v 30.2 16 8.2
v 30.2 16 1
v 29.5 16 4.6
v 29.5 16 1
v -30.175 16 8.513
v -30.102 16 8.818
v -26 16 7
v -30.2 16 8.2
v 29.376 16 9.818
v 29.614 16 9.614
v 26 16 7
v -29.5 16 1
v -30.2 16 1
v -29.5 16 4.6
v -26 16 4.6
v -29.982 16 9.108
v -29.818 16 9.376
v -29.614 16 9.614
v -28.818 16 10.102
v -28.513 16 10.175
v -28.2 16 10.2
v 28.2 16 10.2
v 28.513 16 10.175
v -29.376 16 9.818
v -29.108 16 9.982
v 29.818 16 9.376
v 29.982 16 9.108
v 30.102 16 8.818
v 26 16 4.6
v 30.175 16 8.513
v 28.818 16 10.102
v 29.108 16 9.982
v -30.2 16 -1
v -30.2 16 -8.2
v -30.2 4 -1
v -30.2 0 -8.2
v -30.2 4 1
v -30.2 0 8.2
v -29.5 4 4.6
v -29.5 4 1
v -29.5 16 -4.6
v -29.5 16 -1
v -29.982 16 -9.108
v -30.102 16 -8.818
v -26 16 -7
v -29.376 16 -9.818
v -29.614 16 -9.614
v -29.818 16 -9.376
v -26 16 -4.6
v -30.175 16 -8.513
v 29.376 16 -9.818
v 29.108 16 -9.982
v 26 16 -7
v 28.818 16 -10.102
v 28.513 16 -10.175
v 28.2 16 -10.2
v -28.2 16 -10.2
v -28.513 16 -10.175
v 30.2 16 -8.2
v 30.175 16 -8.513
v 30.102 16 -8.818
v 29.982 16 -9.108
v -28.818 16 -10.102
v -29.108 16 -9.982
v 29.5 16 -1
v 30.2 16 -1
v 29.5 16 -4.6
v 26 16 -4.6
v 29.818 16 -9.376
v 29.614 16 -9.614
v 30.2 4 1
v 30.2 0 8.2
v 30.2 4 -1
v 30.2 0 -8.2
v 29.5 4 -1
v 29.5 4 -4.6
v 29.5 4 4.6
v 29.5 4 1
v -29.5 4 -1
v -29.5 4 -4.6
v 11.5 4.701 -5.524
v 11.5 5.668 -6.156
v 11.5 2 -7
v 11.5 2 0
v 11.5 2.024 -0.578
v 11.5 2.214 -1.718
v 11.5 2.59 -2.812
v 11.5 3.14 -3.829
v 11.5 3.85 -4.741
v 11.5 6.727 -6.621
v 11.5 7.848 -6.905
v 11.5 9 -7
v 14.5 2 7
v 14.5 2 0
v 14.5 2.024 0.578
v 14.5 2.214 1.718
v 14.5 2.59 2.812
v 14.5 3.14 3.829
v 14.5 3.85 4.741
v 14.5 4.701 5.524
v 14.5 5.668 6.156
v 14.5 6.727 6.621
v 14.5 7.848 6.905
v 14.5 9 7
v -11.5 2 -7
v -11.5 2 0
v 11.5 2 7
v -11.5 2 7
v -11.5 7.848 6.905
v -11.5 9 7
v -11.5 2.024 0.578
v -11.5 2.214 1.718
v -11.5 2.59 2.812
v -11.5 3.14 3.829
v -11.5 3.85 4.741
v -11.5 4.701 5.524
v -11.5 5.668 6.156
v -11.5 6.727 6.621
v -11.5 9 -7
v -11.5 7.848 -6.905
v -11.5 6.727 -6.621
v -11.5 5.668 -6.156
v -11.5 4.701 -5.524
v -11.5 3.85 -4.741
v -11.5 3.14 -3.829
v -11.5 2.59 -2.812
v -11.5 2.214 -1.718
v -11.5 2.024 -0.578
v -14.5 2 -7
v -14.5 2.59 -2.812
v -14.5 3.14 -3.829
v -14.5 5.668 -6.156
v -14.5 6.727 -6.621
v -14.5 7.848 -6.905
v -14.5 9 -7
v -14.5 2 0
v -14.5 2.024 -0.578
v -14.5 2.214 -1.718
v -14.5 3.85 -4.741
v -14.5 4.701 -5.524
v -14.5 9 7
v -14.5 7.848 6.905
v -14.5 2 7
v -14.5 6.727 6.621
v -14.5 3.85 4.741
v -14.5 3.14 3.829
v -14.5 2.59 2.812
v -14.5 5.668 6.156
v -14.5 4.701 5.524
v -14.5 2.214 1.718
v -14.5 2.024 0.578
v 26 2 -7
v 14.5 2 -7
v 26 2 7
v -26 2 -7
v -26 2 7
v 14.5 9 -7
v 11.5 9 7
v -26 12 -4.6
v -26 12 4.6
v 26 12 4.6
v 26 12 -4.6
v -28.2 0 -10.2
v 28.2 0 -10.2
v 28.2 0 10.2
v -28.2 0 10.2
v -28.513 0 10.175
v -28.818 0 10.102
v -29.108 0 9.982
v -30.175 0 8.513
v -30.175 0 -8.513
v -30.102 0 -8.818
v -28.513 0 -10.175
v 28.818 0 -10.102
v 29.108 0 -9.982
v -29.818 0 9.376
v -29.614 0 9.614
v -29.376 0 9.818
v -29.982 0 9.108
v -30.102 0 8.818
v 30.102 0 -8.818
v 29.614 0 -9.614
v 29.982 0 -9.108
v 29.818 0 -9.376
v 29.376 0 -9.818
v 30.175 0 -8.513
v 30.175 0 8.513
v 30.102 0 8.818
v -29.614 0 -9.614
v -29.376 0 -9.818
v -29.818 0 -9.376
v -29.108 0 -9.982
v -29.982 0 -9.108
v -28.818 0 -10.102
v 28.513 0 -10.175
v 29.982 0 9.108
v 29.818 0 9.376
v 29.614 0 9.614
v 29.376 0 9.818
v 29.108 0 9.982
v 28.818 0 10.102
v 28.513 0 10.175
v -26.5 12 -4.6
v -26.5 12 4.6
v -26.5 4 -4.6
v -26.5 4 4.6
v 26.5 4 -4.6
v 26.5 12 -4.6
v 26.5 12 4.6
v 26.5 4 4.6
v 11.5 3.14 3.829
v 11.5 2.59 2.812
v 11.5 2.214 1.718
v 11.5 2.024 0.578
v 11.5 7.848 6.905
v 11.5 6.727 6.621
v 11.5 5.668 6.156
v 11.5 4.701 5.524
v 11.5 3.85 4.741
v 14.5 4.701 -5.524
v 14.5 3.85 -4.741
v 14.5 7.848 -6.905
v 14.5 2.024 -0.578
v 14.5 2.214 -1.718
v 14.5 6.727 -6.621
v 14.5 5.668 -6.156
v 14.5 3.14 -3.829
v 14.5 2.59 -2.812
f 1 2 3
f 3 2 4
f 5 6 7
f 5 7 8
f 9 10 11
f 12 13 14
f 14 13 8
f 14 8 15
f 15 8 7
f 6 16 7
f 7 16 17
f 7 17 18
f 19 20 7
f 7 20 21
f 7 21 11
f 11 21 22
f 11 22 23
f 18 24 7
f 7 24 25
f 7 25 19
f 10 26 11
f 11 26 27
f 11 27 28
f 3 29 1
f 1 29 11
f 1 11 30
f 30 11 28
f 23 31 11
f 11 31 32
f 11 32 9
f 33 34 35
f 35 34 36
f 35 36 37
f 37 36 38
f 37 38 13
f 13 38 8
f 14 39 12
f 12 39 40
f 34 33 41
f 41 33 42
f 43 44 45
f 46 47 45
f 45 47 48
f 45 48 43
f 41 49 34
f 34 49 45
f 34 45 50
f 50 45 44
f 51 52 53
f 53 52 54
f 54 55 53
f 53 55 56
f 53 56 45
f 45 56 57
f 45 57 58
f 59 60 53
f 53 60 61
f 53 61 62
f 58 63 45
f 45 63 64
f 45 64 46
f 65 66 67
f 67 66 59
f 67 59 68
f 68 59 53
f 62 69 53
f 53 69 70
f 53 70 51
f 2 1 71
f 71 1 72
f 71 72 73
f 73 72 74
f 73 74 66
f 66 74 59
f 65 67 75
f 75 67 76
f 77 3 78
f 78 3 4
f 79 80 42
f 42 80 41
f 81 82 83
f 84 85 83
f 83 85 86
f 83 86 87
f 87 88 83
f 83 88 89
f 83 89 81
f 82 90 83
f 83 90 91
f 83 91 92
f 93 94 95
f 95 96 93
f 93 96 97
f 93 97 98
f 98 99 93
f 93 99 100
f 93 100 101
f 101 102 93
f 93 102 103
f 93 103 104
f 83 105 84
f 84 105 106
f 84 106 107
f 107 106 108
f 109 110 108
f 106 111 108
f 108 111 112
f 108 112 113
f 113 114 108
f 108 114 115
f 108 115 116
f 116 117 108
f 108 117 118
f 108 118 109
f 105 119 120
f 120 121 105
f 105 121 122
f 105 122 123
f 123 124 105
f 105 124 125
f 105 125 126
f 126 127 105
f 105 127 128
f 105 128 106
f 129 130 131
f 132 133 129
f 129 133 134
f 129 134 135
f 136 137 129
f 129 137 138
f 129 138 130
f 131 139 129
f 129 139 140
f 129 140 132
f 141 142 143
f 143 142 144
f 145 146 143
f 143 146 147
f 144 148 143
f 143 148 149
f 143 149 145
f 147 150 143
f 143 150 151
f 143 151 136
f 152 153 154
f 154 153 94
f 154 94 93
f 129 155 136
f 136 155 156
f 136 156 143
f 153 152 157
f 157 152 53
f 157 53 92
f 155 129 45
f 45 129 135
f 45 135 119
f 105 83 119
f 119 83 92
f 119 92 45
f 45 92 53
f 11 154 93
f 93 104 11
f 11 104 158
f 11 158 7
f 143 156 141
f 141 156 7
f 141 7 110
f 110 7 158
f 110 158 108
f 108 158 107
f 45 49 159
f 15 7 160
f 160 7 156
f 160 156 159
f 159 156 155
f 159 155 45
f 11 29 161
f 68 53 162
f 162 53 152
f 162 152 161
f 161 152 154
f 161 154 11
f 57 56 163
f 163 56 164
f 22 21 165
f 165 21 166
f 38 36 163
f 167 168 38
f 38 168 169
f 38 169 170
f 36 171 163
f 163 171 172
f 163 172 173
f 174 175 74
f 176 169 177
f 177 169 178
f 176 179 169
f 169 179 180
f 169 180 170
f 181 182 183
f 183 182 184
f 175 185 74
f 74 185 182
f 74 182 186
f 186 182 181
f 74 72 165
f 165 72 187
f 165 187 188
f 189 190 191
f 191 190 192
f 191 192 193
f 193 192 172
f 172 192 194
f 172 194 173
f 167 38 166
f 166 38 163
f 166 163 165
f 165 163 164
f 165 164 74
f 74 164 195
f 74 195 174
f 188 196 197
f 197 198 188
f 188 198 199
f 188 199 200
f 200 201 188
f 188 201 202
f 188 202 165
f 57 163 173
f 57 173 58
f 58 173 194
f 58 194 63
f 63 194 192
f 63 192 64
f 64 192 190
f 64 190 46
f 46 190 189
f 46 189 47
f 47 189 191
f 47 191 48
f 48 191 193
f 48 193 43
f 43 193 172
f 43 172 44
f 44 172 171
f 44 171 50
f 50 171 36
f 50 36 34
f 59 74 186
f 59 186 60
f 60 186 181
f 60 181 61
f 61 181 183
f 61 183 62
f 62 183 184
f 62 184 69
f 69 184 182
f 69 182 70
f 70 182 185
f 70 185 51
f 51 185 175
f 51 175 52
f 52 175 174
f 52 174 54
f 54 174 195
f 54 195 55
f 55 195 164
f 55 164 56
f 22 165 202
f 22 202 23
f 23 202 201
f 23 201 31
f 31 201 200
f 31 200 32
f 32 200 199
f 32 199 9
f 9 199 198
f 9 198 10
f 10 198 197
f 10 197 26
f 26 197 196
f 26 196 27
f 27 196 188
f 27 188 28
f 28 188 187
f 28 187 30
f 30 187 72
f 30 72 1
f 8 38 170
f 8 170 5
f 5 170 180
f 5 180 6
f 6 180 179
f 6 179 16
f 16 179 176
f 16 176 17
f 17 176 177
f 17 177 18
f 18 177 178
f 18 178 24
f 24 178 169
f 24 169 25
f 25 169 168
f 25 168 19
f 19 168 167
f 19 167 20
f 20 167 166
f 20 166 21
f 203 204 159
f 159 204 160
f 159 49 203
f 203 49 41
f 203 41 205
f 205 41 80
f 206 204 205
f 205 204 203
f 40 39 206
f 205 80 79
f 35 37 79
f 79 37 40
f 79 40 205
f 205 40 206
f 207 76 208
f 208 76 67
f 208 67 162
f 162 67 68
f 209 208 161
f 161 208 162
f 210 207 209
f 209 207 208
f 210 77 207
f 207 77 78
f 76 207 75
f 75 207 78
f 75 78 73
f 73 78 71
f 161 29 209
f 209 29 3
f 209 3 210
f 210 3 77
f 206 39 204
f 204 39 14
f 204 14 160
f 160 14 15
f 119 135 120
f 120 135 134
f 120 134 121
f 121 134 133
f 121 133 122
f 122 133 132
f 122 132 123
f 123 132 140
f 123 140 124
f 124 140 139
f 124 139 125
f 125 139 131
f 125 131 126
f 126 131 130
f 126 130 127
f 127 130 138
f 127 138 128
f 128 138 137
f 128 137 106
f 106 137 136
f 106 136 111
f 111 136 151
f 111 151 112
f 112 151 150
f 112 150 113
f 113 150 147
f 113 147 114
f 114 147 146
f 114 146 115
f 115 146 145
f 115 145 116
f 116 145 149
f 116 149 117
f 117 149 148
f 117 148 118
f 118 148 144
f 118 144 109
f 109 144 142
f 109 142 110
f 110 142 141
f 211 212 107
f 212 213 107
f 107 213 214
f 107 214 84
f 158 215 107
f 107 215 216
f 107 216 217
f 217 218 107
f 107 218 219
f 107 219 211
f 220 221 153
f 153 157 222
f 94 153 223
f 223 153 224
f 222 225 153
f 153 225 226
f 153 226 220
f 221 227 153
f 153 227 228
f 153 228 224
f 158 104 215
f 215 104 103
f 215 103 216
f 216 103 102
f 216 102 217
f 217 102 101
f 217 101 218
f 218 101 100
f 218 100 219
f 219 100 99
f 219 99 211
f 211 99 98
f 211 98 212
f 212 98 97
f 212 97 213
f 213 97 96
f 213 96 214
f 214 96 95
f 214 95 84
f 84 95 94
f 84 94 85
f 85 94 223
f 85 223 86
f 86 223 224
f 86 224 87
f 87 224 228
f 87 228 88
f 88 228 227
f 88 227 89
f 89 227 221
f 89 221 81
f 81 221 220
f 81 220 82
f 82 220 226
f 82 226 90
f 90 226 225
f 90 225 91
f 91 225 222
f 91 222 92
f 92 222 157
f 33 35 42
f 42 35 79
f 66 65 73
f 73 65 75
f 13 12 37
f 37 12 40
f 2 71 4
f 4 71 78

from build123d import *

# Parameters (mm, degrees)
SKETCH2_W                                  = 60.4
SKETCH2_H                                  = 20.4
BOSS_EXTRUDE1_DEPTH                        = 16
SKETCH3_W                                  = 52
SKETCH3_H                                  = 14
CUT_EXTRUDE1_DEPTH                         = 14
FILLET1_R                                  = 2
SKETCH4_W                                  = 0.5
SKETCH4_H                                  = 4.6
CUT_EXTRUDE2_DEPTH                         = 4
SKETCH5_W                                  = 3
SKETCH5_H                                  = 4.6
CUT_EXTRUDE3_DEPTH                         = 12
MIRROR5_COPY_1_SKETCH_W                    = 0.5
MIRROR5_COPY_1_SKETCH_H                    = 4.6
MIRROR5_COPY_1_DEPTH                       = 4
MIRROR5_COPY_2_SKETCH_W                    = 3
MIRROR5_COPY_2_SKETCH_H                    = 4.6
MIRROR5_COPY_2_DEPTH                       = 12
MIRROR5_COPY_3_SKETCH_W                    = 0.5
MIRROR5_COPY_3_SKETCH_H                    = 4.6
MIRROR5_COPY_3_DEPTH                       = 4
SKETCH8_W                                  = 3
SKETCH8_H                                  = 14
BOSS_EXTRUDE2_DEPTH                        = 7
CUT_EXTRUDE5_REACH                         = 49.183
SKETCH7_R                                  = 7
CUT_EXTRUDE5_DIRECTION_2_REACH             = 49.183
SKETCH9_W                                  = 0.7
SKETCH9_H                                  = 1
CUT_EXTRUDE6_DEPTH                         = 12
MIRROR8_AT_THE_SECOND_PLANE_COPY_1_SKETC_W = 0.7
MIRROR8_AT_THE_SECOND_PLANE_COPY_1_SKETC_H = 1
MIRROR8_AT_THE_SECOND_PLANE_COPY_1_DEPTH   = 12


with BuildPart() as part:
    # Sketch2 → Boss-Extrude1 (new body)
    with BuildSketch(Plane(origin=(0, 0, 0), x_dir=(1, 0, 0), z_dir=(0, 1, 0))):
        Rectangle(SKETCH2_W, SKETCH2_H)
    extrude(amount=BOSS_EXTRUDE1_DEPTH)

    # Sketch3 → Cut-Extrude1 (cut)
    with BuildSketch(Plane(origin=(0, 16, 0), x_dir=(1, 0, 0), z_dir=(0, 1, 0))):
        Rectangle(SKETCH3_W, SKETCH3_H)
    extrude(amount=-CUT_EXTRUDE1_DEPTH, mode=Mode.SUBTRACT)

    # Fillet1
    fillet1_edges = [part.edges().sort_by_distance(p)[0] for p in [
        (30.2, 8, 10.2),
        (-30.2, 8, 10.2),
        (-30.2, 8, -10.2),
        (30.2, 8, -10.2),
    ]]
    fillet(fillet1_edges, radius=FILLET1_R)

    # Sketch4 → Cut-Extrude2 (cut)
    with BuildSketch(Plane(origin=(0, 16, 0), x_dir=(1, 0, 0), z_dir=(0, 1, 0))):
        with Locations((-26.25, 2.3)):
            Rectangle(SKETCH4_W, SKETCH4_H)
    cut_extrude2 = extrude(amount=-CUT_EXTRUDE2_DEPTH, mode=Mode.SUBTRACT)

    # Sketch5 → Cut-Extrude3 (cut)
    with BuildSketch(Plane(origin=(0, 16, 0), x_dir=(1, 0, 0), z_dir=(0, 1, 0))):
        with Locations((-28, 2.3)):
            Rectangle(SKETCH5_W, SKETCH5_H)
    cut_extrude3 = extrude(amount=-CUT_EXTRUDE3_DEPTH, mode=Mode.SUBTRACT)

    # Mirror4: Cut-Extrude2, Cut-Extrude3 across plane
    add(cut_extrude2.mirror(Plane(origin=(0, 0, 0), x_dir=(0, 0, 1), z_dir=(1, 0, 0))), mode=Mode.SUBTRACT)
    add(cut_extrude3.mirror(Plane(origin=(0, 0, 0), x_dir=(0, 0, 1), z_dir=(1, 0, 0))), mode=Mode.SUBTRACT)

    # Mirror5: Cut-Extrude3 across plane
    add(cut_extrude3.mirror(Plane.XY), mode=Mode.SUBTRACT)

    # Mirror5 copy 1 sketch → Mirror5 copy 1 (cut)
    with BuildSketch(Plane(origin=(0, 16, 0), x_dir=(-1, 0, 0), z_dir=(0, 1, 0))):
        with Locations((-26.25, 2.3)):
            Rectangle(MIRROR5_COPY_1_SKETCH_W, MIRROR5_COPY_1_SKETCH_H)
    extrude(amount=-MIRROR5_COPY_1_DEPTH, mode=Mode.SUBTRACT)

    # Mirror5 copy 2 sketch → Mirror5 copy 2 (cut)
    with BuildSketch(Plane(origin=(0, 16, 0), x_dir=(-1, 0, 0), z_dir=(0, 1, 0))):
        with Locations((-28, 2.3)):
            Rectangle(MIRROR5_COPY_2_SKETCH_W, MIRROR5_COPY_2_SKETCH_H)
    extrude(amount=-MIRROR5_COPY_2_DEPTH, mode=Mode.SUBTRACT)

    # Mirror5 copy 3 sketch → Mirror5 copy 3 (cut)
    with BuildSketch(Plane(origin=(0, 16, 0), x_dir=(1, 0, 0), z_dir=(0, 1, 0))):
        with Locations((-26.25, -2.3)):
            Rectangle(MIRROR5_COPY_3_SKETCH_W, MIRROR5_COPY_3_SKETCH_H)
    extrude(amount=-MIRROR5_COPY_3_DEPTH, mode=Mode.SUBTRACT)

    # Sketch8 → Boss-Extrude2 (add)
    with BuildSketch(Plane(origin=(0, 2, 0), x_dir=(1, 0, 0), z_dir=(0, 1, 0))):
        with Locations((-13, 0)):
            Rectangle(SKETCH8_W, SKETCH8_H)
    boss_extrude2 = extrude(amount=BOSS_EXTRUDE2_DEPTH)

    # Sketch7 → Cut-Extrude5 (cut, up to next)
    with BuildSketch(Plane(origin=(-13, 0, 0), x_dir=(0, 0, -1), z_dir=(1, 0, 0)), mode=Mode.PRIVATE) as cut_extrude5_sk1:
        with Locations((0, 9)):
            Circle(SKETCH7_R)
    cut_extrude5_tool1 = extrude(cut_extrude5_sk1.sketch, amount=-CUT_EXTRUDE5_REACH, mode=Mode.PRIVATE) & part.part
    cut_extrude5 = cut_extrude5_tool1.solids().sort_by_distance((-13, 9, 0))[0]
    add(cut_extrude5, mode=Mode.SUBTRACT)

    # Sketch7 → Cut-Extrude5 direction 2 (cut, up to next)
    with BuildSketch(Plane(origin=(-13, 0, 0), x_dir=(0, 0, -1), z_dir=(1, 0, 0)), mode=Mode.PRIVATE) as cut_extrude5_direction_2_sk1:
        with Locations((0, 9)):
            Circle(SKETCH7_R)
    cut_extrude5_direction_2_tool1 = extrude(cut_extrude5_direction_2_sk1.sketch, amount=CUT_EXTRUDE5_DIRECTION_2_REACH, mode=Mode.PRIVATE) & part.part
    cut_extrude5_direction_2 = cut_extrude5_direction_2_tool1.solids().sort_by_distance((-13, 9, 0))[0]
    add(cut_extrude5_direction_2, mode=Mode.SUBTRACT)

    # Mirror7: Boss-Extrude2, Cut-Extrude5, Cut-Extrude5 direction 2 across plane
    add(boss_extrude2.mirror(Plane(origin=(0, 0, 0), x_dir=(0, 0, 1), z_dir=(1, 0, 0))))
    add(cut_extrude5.mirror(Plane(origin=(0, 0, 0), x_dir=(0, 0, 1), z_dir=(1, 0, 0))), mode=Mode.SUBTRACT)
    add(cut_extrude5_direction_2.mirror(Plane(origin=(0, 0, 0), x_dir=(0, 0, 1), z_dir=(1, 0, 0))), mode=Mode.SUBTRACT)

    # Sketch9 → Cut-Extrude6 (cut)
    with BuildSketch(Plane(origin=(0, 16, 0), x_dir=(1, 0, 0), z_dir=(0, 1, 0))):
        with Locations((-29.85, 0.5)):
            Rectangle(SKETCH9_W, SKETCH9_H)
    cut_extrude6 = extrude(amount=-CUT_EXTRUDE6_DEPTH, mode=Mode.SUBTRACT)

    # Mirror8: Cut-Extrude6 across plane
    add(cut_extrude6.mirror(Plane.XY), mode=Mode.SUBTRACT)

    # Mirror8 at the second plane: Cut-Extrude6 across plane
    add(cut_extrude6.mirror(Plane(origin=(0, 0, 0), x_dir=(0, 0, 1), z_dir=(1, 0, 0))), mode=Mode.SUBTRACT)

    # Mirror8 at the second plane copy 1 sketc → Mirror8 at the second plane copy 1 (cut)
    with BuildSketch(Plane(origin=(0, 16, 0), x_dir=(-1, 0, 0), z_dir=(0, 1, 0))):
        with Locations((-29.85, 0.5)):
            Rectangle(MIRROR8_AT_THE_SECOND_PLANE_COPY_1_SKETC_W, MIRROR8_AT_THE_SECOND_PLANE_COPY_1_SKETC_H)
    extrude(amount=-MIRROR8_AT_THE_SECOND_PLANE_COPY_1_DEPTH, mode=Mode.SUBTRACT)


solid = part.part
